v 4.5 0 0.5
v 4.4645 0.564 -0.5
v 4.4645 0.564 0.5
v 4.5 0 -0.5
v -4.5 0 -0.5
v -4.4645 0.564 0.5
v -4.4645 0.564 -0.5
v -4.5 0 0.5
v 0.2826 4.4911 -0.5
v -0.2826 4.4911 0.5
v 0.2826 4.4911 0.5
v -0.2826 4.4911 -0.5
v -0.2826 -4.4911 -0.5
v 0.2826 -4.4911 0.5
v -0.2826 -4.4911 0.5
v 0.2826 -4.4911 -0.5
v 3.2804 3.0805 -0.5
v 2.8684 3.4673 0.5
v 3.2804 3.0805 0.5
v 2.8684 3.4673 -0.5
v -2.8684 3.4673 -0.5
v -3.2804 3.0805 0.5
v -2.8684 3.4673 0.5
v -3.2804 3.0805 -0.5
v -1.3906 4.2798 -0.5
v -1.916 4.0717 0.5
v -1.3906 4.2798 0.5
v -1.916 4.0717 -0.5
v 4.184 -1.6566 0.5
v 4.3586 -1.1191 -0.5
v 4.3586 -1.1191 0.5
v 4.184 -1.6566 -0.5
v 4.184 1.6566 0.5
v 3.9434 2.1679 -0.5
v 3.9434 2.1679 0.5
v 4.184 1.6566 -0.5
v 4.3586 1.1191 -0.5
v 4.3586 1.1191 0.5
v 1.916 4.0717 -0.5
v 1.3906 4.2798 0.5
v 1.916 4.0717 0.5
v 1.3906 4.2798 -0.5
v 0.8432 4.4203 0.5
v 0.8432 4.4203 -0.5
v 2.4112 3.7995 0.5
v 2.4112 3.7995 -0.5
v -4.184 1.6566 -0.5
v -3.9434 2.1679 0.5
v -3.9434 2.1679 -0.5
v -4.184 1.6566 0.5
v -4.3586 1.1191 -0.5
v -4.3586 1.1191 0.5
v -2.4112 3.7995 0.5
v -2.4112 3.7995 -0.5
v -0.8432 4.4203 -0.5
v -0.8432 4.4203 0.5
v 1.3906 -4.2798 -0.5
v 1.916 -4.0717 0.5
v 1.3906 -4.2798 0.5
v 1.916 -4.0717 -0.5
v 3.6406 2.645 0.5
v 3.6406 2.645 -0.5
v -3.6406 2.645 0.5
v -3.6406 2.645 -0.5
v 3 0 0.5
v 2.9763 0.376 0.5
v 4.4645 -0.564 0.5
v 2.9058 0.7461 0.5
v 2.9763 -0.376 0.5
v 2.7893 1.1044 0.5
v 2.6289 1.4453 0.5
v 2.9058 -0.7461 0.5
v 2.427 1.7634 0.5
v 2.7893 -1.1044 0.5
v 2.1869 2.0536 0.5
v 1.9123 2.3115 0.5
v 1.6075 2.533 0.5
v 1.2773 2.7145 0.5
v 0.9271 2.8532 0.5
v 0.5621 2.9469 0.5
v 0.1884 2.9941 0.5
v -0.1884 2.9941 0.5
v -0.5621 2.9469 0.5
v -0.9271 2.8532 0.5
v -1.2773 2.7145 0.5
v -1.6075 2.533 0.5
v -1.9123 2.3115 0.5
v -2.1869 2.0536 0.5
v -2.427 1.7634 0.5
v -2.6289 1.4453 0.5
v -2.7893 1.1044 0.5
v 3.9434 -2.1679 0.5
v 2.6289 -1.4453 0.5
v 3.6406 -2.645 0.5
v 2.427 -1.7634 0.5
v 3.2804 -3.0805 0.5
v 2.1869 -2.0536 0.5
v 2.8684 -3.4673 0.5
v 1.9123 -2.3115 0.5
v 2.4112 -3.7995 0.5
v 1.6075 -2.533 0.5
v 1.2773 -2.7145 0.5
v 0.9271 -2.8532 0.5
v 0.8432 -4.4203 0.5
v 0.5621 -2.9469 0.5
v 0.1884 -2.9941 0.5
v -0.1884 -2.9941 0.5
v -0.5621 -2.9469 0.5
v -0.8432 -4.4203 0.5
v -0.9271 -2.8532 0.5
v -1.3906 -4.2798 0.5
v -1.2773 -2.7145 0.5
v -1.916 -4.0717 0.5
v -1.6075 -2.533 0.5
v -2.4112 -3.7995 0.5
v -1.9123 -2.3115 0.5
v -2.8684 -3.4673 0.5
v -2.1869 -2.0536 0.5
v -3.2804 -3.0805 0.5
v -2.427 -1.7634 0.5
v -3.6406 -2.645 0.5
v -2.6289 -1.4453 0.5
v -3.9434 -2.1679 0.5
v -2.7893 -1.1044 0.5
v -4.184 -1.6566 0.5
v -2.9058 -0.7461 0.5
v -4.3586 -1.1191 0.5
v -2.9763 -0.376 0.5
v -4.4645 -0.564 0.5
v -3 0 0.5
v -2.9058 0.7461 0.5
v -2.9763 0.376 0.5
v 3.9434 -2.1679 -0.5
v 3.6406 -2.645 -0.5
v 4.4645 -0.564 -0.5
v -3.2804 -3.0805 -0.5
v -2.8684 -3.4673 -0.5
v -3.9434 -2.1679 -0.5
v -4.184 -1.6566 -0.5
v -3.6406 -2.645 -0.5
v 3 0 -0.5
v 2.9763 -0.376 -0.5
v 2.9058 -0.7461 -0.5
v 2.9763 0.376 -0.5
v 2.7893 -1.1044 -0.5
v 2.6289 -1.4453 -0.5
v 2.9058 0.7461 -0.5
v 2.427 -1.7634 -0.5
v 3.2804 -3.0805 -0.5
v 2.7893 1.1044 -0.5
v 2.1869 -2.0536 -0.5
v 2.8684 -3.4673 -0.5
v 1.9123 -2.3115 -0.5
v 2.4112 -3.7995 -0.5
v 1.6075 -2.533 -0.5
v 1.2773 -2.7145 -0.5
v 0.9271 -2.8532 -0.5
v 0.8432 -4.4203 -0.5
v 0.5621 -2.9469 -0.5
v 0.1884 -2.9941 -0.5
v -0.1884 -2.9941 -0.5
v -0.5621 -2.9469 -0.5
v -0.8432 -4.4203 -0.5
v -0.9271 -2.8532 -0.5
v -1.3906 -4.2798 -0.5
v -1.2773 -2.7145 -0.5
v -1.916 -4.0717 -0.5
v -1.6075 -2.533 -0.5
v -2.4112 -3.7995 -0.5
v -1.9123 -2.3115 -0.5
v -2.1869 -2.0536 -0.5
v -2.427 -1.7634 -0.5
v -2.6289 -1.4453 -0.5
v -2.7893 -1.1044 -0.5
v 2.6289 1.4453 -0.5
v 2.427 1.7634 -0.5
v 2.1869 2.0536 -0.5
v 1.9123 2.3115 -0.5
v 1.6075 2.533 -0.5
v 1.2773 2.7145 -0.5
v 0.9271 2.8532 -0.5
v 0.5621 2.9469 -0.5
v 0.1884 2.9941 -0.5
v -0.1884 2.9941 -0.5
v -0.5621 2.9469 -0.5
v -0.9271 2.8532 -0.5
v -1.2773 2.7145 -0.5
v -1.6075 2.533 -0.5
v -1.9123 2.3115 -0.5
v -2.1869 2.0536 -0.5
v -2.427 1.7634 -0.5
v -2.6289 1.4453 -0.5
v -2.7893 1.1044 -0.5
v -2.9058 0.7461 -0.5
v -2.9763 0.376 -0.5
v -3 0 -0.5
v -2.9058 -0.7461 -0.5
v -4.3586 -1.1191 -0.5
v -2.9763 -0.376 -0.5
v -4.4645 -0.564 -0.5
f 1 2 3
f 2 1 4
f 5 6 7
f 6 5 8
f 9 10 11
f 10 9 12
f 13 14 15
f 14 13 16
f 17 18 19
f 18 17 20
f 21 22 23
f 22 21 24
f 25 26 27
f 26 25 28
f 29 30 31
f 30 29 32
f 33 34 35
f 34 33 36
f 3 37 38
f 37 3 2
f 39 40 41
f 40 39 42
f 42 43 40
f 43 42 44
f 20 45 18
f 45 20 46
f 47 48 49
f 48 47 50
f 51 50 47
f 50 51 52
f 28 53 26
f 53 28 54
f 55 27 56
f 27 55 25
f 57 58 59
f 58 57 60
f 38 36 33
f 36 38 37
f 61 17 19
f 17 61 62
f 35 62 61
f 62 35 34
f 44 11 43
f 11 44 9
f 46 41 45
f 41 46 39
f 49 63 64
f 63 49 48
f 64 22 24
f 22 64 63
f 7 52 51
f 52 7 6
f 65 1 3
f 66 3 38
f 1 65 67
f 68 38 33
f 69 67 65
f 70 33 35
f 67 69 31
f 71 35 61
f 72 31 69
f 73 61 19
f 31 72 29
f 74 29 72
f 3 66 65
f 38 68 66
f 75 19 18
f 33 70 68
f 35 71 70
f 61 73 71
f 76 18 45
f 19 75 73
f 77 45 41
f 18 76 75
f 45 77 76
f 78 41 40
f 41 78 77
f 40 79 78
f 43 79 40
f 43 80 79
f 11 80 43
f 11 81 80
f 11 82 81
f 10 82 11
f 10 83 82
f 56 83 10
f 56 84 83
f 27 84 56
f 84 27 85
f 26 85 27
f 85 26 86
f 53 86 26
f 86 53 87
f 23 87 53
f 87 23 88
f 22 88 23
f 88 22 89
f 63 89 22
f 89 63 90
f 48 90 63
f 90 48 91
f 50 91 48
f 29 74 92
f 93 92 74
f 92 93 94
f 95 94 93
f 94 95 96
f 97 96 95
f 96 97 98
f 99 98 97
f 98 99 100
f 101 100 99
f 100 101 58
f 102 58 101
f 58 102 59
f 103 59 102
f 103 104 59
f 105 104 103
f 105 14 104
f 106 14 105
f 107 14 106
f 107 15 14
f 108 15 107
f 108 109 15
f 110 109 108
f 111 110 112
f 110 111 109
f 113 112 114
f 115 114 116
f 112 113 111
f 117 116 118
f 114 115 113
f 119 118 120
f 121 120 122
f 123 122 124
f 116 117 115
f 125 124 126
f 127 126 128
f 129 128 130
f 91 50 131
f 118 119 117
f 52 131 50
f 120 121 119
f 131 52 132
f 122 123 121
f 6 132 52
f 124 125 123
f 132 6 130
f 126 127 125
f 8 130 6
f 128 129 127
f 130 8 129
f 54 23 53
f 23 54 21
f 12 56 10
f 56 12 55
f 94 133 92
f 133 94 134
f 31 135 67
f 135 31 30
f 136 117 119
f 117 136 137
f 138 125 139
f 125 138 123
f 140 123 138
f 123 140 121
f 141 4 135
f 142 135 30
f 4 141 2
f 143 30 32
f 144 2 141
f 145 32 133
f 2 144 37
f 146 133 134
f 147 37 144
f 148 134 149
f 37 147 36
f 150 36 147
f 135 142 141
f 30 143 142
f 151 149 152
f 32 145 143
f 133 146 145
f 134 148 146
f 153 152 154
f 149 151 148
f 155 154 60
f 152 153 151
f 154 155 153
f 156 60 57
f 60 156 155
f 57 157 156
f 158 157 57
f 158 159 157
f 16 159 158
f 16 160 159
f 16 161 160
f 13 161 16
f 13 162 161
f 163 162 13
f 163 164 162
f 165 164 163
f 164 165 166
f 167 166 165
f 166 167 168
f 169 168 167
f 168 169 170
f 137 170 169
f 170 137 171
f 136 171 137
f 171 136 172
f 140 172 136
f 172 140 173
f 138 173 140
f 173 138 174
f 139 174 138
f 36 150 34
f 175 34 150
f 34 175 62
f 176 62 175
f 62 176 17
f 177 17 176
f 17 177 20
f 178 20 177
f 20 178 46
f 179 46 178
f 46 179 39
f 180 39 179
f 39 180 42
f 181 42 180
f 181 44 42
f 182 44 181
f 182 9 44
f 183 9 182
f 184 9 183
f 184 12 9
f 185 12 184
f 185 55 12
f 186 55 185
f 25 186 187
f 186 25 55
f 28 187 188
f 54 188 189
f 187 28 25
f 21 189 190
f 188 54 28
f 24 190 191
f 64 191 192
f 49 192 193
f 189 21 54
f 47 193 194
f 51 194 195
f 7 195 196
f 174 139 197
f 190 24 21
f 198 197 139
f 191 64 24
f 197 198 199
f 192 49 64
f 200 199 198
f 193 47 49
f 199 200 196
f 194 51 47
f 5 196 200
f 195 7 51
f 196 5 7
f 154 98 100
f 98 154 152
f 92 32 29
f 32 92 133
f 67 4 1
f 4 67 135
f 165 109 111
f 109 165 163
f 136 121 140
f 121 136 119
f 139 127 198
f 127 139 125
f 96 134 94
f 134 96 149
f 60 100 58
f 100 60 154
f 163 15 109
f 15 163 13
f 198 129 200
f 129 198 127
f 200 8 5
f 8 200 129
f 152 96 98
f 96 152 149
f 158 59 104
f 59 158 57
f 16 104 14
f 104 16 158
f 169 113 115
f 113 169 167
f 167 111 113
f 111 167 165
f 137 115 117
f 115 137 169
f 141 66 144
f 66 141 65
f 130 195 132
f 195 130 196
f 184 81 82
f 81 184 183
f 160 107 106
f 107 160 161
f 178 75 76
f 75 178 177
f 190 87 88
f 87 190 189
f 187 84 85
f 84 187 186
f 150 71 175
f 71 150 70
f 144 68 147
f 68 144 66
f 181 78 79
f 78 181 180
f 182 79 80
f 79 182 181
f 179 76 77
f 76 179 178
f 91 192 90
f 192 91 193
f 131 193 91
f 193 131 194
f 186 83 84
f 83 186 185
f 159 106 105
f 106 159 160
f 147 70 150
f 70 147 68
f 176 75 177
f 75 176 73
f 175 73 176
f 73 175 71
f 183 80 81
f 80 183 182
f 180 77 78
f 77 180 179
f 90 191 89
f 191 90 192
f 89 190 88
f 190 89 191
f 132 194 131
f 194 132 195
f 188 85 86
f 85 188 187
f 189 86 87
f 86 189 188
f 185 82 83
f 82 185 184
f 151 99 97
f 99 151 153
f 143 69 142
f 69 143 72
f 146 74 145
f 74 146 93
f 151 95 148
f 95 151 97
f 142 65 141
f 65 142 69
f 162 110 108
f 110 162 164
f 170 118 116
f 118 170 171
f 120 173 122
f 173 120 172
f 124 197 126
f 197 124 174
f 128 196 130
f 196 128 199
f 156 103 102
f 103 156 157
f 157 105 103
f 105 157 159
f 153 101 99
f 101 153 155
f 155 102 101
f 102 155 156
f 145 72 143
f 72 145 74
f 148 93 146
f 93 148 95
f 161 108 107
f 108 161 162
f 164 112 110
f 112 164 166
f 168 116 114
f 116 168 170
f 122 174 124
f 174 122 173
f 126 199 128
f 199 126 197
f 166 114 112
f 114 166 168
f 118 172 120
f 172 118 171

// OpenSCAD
$fn = 50;


difference() {
	union() {
		translate(v = [0, 0, -0.5000000000]) {
			cylinder(h = 1, r = 4.5000000000);
		}
	}
	union() {
		translate(v = [0, 0, -100.0000000000]) {
			cylinder(h = 200, r = 3);
		}
	}
}
